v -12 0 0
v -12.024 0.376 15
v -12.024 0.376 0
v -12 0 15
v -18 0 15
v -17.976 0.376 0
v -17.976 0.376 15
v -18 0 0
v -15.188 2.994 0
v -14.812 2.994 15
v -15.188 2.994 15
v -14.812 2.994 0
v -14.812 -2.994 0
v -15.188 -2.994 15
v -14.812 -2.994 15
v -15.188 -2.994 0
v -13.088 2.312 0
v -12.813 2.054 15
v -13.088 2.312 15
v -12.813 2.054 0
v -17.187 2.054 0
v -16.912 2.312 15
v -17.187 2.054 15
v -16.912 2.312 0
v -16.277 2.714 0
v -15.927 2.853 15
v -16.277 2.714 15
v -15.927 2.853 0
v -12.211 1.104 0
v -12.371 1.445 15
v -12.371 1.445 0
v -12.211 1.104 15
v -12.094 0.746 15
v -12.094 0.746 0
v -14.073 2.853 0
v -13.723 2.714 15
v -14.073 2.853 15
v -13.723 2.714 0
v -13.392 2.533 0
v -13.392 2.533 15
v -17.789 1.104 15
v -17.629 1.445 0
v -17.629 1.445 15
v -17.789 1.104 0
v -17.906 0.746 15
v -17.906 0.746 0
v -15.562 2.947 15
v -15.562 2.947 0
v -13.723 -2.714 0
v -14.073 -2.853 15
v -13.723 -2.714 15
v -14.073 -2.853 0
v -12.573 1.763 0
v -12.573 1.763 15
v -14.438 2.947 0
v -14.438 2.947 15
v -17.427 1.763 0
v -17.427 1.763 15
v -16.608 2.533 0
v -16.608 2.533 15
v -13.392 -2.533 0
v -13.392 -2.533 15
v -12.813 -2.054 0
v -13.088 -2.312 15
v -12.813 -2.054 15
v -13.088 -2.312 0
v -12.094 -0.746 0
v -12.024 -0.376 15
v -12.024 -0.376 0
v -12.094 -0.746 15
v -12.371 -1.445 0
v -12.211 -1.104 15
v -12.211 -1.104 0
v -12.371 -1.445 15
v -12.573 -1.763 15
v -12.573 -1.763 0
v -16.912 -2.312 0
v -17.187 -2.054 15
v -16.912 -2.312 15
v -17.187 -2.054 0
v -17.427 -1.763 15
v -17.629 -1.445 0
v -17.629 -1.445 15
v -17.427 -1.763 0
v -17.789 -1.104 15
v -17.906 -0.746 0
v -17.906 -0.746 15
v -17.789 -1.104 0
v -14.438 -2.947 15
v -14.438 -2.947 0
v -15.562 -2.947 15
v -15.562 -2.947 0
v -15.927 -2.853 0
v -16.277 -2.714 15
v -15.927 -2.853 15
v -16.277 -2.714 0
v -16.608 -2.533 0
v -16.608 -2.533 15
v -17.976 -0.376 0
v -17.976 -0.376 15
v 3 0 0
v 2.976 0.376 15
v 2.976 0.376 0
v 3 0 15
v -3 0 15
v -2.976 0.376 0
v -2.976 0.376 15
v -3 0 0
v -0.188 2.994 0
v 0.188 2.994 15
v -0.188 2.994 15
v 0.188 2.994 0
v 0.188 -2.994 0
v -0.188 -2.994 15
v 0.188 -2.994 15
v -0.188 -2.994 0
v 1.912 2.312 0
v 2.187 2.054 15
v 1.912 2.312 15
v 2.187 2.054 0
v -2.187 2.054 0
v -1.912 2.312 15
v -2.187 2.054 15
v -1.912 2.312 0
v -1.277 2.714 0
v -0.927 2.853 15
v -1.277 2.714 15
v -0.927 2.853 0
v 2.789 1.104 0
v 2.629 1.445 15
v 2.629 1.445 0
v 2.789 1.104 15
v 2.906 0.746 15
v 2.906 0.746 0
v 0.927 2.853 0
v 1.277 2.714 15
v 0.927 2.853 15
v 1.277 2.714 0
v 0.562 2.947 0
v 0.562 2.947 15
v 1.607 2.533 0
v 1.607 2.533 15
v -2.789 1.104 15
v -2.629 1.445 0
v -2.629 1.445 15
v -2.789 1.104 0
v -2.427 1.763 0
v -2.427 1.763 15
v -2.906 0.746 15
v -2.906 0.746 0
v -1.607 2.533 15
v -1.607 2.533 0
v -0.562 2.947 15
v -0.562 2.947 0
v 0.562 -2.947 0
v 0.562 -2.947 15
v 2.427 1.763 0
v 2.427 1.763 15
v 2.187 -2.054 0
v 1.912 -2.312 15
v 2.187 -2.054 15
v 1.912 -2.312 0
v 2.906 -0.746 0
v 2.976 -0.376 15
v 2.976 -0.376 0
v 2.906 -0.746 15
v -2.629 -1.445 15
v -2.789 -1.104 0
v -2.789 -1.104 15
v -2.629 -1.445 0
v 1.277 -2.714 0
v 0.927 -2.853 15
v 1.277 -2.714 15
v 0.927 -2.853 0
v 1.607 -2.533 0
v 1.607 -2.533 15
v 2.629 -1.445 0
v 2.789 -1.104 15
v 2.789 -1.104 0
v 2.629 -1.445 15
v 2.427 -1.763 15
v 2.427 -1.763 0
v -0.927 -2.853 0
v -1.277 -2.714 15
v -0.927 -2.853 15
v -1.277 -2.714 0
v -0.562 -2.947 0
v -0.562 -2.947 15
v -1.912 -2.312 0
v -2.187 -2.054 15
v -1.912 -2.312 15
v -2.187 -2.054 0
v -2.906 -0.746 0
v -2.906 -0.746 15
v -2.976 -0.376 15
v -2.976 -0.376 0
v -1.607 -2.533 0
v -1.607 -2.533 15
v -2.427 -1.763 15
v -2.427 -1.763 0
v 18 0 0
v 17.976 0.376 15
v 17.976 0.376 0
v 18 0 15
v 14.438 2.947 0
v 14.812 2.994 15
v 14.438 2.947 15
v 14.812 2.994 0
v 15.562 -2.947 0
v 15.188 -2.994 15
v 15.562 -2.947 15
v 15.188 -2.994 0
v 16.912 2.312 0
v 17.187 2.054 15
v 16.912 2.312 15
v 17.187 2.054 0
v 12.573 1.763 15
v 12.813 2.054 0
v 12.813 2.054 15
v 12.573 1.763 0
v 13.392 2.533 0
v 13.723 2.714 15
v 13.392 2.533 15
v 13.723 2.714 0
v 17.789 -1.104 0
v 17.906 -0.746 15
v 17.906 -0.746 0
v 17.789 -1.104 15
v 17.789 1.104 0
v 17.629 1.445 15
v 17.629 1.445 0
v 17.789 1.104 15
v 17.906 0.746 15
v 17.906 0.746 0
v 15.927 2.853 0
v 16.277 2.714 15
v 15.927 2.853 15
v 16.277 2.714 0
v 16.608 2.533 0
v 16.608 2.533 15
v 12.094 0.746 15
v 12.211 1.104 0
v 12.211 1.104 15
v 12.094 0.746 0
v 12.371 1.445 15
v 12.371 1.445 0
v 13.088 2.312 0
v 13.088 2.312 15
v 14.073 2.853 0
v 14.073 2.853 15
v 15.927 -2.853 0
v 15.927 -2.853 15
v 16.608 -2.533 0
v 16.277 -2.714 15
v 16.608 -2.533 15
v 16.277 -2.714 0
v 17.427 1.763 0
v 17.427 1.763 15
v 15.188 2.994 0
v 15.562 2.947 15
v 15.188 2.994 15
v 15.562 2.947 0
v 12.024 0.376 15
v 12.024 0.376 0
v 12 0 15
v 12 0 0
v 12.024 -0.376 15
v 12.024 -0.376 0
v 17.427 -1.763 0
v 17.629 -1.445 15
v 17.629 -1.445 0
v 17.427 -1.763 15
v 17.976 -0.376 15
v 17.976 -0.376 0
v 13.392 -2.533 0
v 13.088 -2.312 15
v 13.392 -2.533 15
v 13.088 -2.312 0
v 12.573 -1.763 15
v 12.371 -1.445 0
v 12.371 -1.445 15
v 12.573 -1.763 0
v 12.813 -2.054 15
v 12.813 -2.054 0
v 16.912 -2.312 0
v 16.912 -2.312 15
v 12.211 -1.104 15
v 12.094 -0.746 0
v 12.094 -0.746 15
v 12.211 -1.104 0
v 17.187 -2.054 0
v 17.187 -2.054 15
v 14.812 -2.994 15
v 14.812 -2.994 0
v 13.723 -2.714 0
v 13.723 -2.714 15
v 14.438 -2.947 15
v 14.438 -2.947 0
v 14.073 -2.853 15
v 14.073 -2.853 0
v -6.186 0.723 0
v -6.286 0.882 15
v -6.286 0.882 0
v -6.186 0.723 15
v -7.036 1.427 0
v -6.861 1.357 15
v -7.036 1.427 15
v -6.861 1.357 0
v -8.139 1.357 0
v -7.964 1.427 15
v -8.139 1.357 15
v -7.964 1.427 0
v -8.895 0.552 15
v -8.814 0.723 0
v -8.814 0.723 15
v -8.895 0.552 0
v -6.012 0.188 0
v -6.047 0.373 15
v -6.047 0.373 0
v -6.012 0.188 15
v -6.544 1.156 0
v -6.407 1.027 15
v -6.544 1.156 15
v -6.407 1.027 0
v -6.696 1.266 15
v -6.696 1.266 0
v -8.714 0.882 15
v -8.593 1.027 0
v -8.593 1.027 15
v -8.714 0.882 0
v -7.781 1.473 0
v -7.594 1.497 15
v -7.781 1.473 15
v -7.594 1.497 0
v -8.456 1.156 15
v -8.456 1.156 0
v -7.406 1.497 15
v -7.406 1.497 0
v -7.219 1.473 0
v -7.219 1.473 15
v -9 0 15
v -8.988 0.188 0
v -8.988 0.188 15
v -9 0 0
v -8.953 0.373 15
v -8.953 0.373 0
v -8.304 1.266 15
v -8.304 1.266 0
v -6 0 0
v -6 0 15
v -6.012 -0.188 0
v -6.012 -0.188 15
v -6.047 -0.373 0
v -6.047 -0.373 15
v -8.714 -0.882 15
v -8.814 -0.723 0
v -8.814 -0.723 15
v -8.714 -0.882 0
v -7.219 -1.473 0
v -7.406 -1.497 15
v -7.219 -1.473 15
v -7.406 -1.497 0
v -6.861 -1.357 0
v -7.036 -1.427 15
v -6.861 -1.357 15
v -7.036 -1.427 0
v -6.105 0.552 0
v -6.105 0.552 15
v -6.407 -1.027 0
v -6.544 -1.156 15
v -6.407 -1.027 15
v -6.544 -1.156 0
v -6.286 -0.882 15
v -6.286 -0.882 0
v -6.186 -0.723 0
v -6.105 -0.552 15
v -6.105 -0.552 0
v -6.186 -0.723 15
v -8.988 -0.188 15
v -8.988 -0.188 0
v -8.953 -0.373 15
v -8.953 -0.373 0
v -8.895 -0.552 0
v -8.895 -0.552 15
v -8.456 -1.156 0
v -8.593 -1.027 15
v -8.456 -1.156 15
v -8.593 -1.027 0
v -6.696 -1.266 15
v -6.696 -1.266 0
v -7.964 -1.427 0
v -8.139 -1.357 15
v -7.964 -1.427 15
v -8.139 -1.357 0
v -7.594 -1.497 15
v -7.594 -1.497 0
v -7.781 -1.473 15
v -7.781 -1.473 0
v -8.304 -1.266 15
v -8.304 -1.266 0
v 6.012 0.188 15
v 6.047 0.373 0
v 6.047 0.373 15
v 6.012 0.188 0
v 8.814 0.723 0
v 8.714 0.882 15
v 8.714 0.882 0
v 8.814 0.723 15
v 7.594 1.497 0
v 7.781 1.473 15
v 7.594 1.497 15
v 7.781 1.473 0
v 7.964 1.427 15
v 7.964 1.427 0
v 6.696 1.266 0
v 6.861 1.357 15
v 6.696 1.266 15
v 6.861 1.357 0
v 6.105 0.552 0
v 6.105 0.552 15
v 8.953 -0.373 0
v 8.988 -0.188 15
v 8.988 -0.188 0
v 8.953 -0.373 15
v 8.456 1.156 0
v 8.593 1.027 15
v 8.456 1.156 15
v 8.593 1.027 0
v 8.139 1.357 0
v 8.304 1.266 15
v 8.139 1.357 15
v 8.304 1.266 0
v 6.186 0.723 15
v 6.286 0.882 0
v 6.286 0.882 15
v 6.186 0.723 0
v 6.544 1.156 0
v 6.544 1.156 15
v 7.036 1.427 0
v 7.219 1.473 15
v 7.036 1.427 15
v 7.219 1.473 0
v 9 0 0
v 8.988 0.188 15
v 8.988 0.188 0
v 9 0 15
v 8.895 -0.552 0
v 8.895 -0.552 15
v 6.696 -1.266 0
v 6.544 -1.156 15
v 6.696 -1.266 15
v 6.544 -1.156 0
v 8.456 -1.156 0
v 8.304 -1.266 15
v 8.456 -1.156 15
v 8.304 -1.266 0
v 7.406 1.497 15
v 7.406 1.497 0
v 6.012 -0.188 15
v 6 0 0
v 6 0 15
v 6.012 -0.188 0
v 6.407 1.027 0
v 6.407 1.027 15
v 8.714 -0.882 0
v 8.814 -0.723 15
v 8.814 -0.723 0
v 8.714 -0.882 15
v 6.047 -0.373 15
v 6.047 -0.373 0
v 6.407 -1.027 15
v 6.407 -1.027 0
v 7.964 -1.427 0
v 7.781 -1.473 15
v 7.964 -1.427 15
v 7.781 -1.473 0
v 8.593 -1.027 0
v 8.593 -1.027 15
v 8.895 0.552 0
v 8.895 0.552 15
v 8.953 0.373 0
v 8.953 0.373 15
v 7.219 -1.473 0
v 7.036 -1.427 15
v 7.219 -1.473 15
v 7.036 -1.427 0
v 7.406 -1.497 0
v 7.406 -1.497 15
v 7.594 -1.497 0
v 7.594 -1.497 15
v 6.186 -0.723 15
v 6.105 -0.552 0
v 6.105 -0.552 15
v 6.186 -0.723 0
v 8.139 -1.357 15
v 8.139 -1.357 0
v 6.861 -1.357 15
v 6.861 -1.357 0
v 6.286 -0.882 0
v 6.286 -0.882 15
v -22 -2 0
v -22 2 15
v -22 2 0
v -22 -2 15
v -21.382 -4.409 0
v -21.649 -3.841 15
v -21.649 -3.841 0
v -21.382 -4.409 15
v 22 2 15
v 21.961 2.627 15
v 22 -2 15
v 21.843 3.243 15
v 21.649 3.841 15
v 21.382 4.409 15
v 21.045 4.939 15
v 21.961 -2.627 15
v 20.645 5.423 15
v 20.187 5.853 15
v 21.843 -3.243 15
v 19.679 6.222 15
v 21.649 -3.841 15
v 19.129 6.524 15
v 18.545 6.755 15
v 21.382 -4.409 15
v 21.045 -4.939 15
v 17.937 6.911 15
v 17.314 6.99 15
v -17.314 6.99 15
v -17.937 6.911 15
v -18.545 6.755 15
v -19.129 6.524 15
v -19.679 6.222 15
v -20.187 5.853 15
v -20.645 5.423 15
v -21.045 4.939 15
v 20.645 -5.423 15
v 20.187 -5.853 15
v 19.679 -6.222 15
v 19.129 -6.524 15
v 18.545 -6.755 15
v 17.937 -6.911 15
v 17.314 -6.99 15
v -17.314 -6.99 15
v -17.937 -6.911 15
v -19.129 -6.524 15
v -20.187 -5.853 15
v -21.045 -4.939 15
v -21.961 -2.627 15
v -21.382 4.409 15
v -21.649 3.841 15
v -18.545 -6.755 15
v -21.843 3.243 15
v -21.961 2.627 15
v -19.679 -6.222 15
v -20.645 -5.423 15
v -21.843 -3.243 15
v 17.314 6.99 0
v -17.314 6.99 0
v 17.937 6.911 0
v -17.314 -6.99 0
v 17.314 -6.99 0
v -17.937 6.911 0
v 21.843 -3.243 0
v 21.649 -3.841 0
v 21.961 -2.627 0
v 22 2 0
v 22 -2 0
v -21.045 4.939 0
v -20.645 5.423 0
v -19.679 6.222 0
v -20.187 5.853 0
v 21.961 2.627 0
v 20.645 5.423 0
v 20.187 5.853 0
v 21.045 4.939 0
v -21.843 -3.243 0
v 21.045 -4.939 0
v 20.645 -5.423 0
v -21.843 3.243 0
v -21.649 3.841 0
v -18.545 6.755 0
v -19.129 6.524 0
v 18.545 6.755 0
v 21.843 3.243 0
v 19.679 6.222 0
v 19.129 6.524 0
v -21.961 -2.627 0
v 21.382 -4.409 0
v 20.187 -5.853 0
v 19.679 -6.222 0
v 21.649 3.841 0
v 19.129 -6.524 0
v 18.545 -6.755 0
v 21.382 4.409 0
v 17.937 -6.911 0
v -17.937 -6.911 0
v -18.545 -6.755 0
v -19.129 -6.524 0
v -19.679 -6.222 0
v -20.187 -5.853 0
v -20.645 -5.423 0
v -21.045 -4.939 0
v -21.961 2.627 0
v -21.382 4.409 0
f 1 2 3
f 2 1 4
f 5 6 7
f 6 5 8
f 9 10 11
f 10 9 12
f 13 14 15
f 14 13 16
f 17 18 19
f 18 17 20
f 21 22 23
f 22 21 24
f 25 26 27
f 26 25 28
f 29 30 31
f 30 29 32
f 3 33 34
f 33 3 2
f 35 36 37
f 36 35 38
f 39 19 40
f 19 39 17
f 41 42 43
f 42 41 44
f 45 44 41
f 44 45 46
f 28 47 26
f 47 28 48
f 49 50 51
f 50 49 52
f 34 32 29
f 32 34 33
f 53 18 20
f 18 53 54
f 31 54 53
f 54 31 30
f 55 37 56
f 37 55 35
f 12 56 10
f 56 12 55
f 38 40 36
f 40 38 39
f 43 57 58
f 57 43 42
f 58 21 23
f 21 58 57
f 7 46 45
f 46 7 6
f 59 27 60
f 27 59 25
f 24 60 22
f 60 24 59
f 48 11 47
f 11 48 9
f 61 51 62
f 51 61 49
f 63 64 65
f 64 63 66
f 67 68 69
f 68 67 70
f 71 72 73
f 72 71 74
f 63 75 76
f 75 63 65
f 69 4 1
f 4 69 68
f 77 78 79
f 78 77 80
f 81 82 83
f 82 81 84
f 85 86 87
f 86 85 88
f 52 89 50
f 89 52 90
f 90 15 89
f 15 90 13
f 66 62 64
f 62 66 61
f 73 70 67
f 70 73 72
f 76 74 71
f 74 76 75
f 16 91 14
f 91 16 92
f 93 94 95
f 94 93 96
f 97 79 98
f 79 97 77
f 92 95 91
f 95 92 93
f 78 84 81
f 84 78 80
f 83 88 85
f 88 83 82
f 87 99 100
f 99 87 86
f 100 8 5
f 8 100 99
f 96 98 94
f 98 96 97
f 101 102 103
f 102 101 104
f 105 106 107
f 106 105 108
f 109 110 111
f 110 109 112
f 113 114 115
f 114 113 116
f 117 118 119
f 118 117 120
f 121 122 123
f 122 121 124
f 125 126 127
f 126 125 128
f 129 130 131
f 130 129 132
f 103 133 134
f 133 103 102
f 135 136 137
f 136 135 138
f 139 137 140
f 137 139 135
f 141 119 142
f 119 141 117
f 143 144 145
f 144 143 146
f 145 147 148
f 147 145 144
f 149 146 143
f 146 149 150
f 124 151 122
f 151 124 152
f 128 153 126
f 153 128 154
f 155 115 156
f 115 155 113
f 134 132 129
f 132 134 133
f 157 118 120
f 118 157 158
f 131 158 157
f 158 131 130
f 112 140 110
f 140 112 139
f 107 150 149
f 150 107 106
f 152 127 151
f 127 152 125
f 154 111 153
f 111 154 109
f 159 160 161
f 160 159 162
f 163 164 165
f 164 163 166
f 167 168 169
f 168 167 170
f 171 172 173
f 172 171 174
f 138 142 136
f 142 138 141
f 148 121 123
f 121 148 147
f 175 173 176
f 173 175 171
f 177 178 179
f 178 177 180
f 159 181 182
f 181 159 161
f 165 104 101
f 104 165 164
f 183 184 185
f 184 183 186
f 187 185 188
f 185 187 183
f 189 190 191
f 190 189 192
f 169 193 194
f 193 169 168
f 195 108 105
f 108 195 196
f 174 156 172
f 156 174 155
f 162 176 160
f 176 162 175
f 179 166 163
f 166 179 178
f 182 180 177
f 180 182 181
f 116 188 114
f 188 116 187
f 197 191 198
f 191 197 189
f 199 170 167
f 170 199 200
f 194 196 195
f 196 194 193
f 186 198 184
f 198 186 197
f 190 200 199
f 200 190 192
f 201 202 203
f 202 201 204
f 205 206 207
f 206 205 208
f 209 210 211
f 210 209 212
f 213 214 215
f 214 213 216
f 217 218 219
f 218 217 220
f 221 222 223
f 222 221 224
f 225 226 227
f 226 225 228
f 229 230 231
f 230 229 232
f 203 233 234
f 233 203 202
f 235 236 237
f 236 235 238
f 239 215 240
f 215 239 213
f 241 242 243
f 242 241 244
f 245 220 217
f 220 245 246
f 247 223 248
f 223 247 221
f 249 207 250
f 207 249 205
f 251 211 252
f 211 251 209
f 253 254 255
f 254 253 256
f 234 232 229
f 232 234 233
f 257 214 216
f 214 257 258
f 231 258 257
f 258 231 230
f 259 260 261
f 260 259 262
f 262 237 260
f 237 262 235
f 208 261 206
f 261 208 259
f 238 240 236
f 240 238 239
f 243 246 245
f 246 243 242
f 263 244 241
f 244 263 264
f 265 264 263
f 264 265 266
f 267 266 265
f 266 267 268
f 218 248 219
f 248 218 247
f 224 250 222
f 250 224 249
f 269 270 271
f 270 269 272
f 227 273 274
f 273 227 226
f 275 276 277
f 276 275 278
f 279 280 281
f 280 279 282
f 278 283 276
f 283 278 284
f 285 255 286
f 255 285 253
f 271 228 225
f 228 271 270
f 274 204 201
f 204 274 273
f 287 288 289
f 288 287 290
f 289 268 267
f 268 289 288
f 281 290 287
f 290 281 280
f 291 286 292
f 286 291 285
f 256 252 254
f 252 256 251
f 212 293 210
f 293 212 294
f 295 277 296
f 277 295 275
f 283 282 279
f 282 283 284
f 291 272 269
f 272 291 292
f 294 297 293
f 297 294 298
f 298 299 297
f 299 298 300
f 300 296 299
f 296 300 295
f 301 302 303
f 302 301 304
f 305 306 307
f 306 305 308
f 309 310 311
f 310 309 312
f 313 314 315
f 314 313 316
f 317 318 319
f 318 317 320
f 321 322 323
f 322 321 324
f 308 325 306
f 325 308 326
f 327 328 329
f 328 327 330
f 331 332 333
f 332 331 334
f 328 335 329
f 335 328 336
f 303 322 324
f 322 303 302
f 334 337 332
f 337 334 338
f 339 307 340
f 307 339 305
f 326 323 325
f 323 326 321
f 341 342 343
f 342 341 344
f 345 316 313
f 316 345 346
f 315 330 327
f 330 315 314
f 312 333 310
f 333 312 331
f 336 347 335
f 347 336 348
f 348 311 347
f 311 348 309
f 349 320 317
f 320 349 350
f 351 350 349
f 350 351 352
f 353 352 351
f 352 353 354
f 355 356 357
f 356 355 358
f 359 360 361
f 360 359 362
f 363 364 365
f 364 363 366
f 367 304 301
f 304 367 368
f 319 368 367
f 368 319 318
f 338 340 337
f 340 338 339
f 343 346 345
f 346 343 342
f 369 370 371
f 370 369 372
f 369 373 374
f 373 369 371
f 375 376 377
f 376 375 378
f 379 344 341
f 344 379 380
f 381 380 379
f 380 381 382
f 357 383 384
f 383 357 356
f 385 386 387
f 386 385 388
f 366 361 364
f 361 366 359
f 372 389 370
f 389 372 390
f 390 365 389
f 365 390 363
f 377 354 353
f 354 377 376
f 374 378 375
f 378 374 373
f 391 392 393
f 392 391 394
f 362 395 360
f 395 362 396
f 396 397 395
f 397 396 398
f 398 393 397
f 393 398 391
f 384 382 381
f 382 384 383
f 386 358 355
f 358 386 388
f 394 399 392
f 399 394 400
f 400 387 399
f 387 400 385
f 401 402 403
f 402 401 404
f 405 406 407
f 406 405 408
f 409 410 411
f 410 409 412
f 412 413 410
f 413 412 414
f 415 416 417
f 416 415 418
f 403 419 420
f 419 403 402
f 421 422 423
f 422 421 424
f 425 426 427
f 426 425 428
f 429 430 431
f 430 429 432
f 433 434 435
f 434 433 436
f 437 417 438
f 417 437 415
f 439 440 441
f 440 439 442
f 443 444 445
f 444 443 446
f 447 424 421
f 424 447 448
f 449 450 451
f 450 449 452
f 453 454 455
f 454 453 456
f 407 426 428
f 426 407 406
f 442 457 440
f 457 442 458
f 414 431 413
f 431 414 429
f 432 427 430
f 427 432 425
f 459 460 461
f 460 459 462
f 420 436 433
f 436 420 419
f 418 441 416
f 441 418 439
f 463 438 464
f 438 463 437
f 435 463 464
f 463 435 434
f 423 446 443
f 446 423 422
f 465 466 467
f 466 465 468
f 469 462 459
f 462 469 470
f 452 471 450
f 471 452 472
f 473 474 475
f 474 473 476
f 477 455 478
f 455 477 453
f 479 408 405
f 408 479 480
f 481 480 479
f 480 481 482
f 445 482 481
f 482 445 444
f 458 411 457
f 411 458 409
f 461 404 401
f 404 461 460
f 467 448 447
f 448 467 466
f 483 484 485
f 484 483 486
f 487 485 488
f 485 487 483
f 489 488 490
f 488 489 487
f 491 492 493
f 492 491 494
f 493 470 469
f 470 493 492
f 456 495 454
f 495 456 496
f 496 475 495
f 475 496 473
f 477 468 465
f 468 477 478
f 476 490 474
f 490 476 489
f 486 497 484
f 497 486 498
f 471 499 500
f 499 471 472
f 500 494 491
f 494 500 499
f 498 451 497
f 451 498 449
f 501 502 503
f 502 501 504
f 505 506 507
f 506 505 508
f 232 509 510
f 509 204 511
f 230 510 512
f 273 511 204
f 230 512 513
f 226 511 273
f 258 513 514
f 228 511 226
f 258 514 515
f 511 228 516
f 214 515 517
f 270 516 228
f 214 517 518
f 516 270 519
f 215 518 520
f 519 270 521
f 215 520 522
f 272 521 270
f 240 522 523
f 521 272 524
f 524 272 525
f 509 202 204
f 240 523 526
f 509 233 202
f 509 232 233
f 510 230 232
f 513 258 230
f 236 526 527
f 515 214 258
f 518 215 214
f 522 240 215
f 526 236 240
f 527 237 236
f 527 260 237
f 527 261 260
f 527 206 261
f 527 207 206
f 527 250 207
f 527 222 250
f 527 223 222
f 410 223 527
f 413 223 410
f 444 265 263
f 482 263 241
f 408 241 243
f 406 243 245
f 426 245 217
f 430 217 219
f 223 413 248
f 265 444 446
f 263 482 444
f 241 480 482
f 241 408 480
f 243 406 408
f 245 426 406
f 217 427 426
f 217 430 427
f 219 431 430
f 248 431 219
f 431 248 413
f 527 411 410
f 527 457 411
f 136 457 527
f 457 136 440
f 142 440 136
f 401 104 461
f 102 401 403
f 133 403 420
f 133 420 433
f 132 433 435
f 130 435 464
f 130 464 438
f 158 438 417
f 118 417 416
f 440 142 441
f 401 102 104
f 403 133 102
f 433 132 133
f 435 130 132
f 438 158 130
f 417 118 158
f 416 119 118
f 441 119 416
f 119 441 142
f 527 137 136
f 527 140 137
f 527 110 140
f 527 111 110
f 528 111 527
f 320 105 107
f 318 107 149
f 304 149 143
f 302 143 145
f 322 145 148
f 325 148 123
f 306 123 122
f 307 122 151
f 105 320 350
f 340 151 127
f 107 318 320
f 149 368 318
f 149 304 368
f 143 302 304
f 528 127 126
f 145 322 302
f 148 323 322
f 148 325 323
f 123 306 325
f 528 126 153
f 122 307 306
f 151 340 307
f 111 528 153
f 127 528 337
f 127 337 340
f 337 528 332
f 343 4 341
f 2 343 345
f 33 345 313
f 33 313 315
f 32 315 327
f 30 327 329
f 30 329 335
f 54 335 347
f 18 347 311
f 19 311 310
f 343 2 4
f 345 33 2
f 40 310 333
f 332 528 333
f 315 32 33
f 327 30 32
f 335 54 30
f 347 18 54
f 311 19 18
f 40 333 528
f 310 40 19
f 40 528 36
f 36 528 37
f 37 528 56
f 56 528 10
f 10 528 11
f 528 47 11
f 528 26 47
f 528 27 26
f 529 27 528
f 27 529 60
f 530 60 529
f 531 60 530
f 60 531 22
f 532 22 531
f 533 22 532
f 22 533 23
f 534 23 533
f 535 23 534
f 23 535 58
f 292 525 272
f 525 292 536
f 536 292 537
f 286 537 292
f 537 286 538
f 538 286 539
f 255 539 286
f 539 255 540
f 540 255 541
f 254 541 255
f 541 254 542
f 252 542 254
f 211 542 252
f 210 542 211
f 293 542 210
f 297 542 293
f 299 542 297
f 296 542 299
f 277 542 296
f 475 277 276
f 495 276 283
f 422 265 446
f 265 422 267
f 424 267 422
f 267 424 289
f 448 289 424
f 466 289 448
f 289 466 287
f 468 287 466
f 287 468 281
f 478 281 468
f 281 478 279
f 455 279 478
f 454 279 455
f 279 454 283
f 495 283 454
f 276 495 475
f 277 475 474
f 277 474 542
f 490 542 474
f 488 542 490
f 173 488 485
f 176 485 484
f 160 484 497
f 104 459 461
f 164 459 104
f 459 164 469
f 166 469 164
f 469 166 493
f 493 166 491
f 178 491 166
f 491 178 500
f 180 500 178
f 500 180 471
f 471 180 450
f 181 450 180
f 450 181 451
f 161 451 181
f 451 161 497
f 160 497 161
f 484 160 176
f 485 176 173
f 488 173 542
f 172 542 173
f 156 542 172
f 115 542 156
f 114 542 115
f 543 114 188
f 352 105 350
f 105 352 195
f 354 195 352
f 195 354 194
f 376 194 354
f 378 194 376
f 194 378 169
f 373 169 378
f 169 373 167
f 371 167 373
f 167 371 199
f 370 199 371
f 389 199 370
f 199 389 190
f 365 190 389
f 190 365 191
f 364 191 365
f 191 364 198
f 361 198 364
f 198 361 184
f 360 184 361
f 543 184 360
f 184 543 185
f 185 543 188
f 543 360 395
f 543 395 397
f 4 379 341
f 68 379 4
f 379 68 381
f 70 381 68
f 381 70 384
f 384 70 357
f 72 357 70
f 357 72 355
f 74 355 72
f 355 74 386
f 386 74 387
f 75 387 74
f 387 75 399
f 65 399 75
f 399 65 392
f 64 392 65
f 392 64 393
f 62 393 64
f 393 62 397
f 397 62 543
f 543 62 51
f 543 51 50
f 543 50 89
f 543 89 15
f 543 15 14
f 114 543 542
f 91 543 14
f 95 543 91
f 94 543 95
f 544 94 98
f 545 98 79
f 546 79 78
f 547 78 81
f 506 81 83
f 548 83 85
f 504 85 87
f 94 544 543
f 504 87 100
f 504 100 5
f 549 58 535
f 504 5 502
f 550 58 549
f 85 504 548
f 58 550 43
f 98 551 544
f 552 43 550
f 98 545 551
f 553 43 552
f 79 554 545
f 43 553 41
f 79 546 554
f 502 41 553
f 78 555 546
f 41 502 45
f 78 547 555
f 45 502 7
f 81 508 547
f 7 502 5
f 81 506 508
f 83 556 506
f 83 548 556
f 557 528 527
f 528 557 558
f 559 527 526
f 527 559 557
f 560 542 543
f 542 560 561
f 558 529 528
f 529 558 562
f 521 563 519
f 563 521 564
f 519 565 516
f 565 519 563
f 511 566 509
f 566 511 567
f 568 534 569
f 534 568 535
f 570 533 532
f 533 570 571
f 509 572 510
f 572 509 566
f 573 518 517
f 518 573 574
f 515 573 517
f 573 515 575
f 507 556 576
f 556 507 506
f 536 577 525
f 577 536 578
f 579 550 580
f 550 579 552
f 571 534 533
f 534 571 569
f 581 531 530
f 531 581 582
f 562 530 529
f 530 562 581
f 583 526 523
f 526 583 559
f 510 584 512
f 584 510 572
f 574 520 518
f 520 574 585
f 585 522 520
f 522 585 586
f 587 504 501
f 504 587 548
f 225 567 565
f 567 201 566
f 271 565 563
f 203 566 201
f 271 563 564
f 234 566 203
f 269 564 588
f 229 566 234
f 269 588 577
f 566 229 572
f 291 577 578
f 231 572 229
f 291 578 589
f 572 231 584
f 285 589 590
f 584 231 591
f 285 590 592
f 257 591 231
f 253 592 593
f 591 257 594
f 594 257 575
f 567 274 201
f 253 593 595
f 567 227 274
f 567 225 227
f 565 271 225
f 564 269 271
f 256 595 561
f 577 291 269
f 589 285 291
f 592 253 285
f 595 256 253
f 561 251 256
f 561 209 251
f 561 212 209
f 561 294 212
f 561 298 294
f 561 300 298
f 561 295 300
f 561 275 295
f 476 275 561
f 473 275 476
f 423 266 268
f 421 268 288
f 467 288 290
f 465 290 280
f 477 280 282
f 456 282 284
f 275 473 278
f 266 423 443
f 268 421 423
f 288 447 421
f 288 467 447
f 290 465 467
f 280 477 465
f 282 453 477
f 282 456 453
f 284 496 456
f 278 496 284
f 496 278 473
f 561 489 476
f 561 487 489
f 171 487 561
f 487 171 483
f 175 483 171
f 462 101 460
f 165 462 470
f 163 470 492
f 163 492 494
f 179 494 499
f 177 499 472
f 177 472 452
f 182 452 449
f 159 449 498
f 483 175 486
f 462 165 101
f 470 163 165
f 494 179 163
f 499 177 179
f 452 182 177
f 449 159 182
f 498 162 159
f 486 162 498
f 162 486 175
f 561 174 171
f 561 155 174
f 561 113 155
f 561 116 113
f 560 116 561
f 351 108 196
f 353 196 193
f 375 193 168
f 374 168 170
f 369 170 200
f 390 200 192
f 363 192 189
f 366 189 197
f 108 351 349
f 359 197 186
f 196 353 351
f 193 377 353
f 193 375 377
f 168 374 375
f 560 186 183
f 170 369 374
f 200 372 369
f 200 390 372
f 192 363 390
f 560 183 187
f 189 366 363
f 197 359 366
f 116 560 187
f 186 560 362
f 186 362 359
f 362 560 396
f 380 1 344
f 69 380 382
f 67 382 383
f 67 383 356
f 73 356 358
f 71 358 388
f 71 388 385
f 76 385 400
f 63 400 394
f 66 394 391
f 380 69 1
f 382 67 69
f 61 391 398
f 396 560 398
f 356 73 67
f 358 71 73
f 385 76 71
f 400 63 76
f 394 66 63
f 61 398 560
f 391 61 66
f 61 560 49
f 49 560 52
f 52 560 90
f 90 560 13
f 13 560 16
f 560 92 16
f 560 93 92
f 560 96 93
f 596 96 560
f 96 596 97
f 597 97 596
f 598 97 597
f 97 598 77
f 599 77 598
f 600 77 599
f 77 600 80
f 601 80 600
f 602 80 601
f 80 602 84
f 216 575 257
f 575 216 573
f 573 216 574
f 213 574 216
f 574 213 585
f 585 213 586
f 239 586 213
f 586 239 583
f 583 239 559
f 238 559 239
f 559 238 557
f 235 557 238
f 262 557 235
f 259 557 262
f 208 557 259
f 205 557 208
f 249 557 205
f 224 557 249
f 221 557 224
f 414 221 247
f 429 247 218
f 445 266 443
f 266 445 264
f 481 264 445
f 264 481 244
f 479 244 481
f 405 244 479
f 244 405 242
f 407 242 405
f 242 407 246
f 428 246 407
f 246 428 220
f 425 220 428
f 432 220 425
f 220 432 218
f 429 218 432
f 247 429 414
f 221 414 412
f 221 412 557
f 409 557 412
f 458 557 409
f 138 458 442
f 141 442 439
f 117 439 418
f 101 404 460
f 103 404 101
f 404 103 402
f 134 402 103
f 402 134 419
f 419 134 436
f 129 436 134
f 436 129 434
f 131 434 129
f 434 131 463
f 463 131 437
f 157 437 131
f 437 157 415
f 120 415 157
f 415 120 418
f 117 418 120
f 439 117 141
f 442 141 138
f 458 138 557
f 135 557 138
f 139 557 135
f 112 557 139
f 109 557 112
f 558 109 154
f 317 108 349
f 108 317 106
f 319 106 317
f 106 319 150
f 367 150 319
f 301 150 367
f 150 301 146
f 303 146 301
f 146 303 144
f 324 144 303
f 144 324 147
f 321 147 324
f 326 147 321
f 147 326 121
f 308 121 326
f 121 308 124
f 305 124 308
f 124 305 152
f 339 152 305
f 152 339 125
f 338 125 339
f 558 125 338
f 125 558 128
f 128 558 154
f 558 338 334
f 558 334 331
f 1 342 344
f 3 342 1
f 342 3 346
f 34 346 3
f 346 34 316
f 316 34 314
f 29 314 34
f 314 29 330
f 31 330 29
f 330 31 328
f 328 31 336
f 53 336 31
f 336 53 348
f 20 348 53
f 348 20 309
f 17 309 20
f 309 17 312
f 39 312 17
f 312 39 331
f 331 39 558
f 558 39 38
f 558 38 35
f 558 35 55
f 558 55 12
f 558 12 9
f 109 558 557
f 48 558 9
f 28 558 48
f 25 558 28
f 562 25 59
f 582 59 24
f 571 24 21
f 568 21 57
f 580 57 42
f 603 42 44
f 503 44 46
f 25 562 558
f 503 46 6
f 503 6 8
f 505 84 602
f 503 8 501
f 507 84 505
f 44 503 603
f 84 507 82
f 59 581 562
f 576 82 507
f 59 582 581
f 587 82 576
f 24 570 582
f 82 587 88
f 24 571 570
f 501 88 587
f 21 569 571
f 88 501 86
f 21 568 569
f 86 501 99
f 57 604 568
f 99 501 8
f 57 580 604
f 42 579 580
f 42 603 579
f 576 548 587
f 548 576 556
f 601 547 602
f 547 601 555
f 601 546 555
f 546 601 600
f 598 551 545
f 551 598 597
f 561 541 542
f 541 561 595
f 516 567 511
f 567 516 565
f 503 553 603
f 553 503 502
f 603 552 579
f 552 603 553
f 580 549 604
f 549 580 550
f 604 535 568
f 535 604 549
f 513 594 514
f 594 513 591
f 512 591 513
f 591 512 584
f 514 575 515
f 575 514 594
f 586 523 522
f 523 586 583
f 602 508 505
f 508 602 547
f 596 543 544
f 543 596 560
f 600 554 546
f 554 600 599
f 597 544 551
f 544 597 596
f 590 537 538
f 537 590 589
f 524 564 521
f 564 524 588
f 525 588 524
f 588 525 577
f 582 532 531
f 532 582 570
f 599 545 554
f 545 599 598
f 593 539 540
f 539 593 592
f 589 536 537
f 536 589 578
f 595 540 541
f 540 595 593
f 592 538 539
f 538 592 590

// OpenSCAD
$fn = 50;


difference() {
	union() {
		translate(v = [0, 0, 0]) {
			rotate(a = [0, 0, 0]) {
				hull() {
					translate(v = [-17.0000000000, 2.0000000000, 0]) {
						rotate(a = [0, 0, 0]) {
							translate(v = [0, 0, 0]) {
								rotate(a = [0, 0, 0]) {
									cylinder(h = 15, r = 5);
								}
							}
						}
					}
					translate(v = [17.0000000000, 2.0000000000, 0]) {
						rotate(a = [0, 0, 0]) {
							translate(v = [0, 0, 0]) {
								rotate(a = [0, 0, 0]) {
									cylinder(h = 15, r = 5);
								}
							}
						}
					}
					translate(v = [-17.0000000000, -2.0000000000, 0]) {
						rotate(a = [0, 0, 0]) {
							translate(v = [0, 0, 0]) {
								rotate(a = [0, 0, 0]) {
									cylinder(h = 15, r = 5);
								}
							}
						}
					}
					translate(v = [17.0000000000, -2.0000000000, 0]) {
						rotate(a = [0, 0, 0]) {
							translate(v = [0, 0, 0]) {
								rotate(a = [0, 0, 0]) {
									cylinder(h = 15, r = 5);
								}
							}
						}
					}
				}
			}
		}
	}
	union() {
		translate(v = [-15.0000000000, 0.0000000000, 0]) {
			rotate(a = [0, 0, 0]) {
				translate(v = [0, 0, -50]) {
					rotate(a = [0, 0, 0]) {
						cylinder(h = 100, r = 3.0000000000);
					}
				}
			}
		}
		translate(v = [0.0000000000, 0.0000000000, 0]) {
			rotate(a = [0, 0, 0]) {
				translate(v = [0, 0, -50]) {
					rotate(a = [0, 0, 0]) {
						cylinder(h = 100, r = 3.0000000000);
					}
				}
			}
		}
		translate(v = [15.0000000000, 0.0000000000, 0]) {
			rotate(a = [0, 0, 0]) {
				translate(v = [0, 0, -50]) {
					rotate(a = [0, 0, 0]) {
						cylinder(h = 100, r = 3.0000000000);
					}
				}
			}
		}
		translate(v = [-15.0000000000, 0.0000000000, 0]) {
			rotate(a = [0, 0, 0]) {
				translate(v = [0, 0, -50]) {
					rotate(a = [0, 0, 0]) {
						cylinder(h = 100, r = 1.5000000000);
					}
				}
			}
		}
		translate(v = [-7.5000000000, 0.0000000000, 0]) {
			rotate(a = [0, 0, 0]) {
				translate(v = [0, 0, -50]) {
					rotate(a = [0, 0, 0]) {
						cylinder(h = 100, r = 1.5000000000);
					}
				}
			}
		}
		translate(v = [0.0000000000, 0.0000000000, 0]) {
			rotate(a = [0, 0, 0]) {
				translate(v = [0, 0, -50]) {
					rotate(a = [0, 0, 0]) {
						cylinder(h = 100, r = 1.5000000000);
					}
				}
			}
		}
		translate(v = [7.5000000000, 0.0000000000, 0]) {
			rotate(a = [0, 0, 0]) {
				translate(v = [0, 0, -50]) {
					rotate(a = [0, 0, 0]) {
						cylinder(h = 100, r = 1.5000000000);
					}
				}
			}
		}
		translate(v = [15.0000000000, 0.0000000000, 0]) {
			rotate(a = [0, 0, 0]) {
				translate(v = [0, 0, -50]) {
					rotate(a = [0, 0, 0]) {
						cylinder(h = 100, r = 1.5000000000);
					}
				}
			}
		}
	}
}
